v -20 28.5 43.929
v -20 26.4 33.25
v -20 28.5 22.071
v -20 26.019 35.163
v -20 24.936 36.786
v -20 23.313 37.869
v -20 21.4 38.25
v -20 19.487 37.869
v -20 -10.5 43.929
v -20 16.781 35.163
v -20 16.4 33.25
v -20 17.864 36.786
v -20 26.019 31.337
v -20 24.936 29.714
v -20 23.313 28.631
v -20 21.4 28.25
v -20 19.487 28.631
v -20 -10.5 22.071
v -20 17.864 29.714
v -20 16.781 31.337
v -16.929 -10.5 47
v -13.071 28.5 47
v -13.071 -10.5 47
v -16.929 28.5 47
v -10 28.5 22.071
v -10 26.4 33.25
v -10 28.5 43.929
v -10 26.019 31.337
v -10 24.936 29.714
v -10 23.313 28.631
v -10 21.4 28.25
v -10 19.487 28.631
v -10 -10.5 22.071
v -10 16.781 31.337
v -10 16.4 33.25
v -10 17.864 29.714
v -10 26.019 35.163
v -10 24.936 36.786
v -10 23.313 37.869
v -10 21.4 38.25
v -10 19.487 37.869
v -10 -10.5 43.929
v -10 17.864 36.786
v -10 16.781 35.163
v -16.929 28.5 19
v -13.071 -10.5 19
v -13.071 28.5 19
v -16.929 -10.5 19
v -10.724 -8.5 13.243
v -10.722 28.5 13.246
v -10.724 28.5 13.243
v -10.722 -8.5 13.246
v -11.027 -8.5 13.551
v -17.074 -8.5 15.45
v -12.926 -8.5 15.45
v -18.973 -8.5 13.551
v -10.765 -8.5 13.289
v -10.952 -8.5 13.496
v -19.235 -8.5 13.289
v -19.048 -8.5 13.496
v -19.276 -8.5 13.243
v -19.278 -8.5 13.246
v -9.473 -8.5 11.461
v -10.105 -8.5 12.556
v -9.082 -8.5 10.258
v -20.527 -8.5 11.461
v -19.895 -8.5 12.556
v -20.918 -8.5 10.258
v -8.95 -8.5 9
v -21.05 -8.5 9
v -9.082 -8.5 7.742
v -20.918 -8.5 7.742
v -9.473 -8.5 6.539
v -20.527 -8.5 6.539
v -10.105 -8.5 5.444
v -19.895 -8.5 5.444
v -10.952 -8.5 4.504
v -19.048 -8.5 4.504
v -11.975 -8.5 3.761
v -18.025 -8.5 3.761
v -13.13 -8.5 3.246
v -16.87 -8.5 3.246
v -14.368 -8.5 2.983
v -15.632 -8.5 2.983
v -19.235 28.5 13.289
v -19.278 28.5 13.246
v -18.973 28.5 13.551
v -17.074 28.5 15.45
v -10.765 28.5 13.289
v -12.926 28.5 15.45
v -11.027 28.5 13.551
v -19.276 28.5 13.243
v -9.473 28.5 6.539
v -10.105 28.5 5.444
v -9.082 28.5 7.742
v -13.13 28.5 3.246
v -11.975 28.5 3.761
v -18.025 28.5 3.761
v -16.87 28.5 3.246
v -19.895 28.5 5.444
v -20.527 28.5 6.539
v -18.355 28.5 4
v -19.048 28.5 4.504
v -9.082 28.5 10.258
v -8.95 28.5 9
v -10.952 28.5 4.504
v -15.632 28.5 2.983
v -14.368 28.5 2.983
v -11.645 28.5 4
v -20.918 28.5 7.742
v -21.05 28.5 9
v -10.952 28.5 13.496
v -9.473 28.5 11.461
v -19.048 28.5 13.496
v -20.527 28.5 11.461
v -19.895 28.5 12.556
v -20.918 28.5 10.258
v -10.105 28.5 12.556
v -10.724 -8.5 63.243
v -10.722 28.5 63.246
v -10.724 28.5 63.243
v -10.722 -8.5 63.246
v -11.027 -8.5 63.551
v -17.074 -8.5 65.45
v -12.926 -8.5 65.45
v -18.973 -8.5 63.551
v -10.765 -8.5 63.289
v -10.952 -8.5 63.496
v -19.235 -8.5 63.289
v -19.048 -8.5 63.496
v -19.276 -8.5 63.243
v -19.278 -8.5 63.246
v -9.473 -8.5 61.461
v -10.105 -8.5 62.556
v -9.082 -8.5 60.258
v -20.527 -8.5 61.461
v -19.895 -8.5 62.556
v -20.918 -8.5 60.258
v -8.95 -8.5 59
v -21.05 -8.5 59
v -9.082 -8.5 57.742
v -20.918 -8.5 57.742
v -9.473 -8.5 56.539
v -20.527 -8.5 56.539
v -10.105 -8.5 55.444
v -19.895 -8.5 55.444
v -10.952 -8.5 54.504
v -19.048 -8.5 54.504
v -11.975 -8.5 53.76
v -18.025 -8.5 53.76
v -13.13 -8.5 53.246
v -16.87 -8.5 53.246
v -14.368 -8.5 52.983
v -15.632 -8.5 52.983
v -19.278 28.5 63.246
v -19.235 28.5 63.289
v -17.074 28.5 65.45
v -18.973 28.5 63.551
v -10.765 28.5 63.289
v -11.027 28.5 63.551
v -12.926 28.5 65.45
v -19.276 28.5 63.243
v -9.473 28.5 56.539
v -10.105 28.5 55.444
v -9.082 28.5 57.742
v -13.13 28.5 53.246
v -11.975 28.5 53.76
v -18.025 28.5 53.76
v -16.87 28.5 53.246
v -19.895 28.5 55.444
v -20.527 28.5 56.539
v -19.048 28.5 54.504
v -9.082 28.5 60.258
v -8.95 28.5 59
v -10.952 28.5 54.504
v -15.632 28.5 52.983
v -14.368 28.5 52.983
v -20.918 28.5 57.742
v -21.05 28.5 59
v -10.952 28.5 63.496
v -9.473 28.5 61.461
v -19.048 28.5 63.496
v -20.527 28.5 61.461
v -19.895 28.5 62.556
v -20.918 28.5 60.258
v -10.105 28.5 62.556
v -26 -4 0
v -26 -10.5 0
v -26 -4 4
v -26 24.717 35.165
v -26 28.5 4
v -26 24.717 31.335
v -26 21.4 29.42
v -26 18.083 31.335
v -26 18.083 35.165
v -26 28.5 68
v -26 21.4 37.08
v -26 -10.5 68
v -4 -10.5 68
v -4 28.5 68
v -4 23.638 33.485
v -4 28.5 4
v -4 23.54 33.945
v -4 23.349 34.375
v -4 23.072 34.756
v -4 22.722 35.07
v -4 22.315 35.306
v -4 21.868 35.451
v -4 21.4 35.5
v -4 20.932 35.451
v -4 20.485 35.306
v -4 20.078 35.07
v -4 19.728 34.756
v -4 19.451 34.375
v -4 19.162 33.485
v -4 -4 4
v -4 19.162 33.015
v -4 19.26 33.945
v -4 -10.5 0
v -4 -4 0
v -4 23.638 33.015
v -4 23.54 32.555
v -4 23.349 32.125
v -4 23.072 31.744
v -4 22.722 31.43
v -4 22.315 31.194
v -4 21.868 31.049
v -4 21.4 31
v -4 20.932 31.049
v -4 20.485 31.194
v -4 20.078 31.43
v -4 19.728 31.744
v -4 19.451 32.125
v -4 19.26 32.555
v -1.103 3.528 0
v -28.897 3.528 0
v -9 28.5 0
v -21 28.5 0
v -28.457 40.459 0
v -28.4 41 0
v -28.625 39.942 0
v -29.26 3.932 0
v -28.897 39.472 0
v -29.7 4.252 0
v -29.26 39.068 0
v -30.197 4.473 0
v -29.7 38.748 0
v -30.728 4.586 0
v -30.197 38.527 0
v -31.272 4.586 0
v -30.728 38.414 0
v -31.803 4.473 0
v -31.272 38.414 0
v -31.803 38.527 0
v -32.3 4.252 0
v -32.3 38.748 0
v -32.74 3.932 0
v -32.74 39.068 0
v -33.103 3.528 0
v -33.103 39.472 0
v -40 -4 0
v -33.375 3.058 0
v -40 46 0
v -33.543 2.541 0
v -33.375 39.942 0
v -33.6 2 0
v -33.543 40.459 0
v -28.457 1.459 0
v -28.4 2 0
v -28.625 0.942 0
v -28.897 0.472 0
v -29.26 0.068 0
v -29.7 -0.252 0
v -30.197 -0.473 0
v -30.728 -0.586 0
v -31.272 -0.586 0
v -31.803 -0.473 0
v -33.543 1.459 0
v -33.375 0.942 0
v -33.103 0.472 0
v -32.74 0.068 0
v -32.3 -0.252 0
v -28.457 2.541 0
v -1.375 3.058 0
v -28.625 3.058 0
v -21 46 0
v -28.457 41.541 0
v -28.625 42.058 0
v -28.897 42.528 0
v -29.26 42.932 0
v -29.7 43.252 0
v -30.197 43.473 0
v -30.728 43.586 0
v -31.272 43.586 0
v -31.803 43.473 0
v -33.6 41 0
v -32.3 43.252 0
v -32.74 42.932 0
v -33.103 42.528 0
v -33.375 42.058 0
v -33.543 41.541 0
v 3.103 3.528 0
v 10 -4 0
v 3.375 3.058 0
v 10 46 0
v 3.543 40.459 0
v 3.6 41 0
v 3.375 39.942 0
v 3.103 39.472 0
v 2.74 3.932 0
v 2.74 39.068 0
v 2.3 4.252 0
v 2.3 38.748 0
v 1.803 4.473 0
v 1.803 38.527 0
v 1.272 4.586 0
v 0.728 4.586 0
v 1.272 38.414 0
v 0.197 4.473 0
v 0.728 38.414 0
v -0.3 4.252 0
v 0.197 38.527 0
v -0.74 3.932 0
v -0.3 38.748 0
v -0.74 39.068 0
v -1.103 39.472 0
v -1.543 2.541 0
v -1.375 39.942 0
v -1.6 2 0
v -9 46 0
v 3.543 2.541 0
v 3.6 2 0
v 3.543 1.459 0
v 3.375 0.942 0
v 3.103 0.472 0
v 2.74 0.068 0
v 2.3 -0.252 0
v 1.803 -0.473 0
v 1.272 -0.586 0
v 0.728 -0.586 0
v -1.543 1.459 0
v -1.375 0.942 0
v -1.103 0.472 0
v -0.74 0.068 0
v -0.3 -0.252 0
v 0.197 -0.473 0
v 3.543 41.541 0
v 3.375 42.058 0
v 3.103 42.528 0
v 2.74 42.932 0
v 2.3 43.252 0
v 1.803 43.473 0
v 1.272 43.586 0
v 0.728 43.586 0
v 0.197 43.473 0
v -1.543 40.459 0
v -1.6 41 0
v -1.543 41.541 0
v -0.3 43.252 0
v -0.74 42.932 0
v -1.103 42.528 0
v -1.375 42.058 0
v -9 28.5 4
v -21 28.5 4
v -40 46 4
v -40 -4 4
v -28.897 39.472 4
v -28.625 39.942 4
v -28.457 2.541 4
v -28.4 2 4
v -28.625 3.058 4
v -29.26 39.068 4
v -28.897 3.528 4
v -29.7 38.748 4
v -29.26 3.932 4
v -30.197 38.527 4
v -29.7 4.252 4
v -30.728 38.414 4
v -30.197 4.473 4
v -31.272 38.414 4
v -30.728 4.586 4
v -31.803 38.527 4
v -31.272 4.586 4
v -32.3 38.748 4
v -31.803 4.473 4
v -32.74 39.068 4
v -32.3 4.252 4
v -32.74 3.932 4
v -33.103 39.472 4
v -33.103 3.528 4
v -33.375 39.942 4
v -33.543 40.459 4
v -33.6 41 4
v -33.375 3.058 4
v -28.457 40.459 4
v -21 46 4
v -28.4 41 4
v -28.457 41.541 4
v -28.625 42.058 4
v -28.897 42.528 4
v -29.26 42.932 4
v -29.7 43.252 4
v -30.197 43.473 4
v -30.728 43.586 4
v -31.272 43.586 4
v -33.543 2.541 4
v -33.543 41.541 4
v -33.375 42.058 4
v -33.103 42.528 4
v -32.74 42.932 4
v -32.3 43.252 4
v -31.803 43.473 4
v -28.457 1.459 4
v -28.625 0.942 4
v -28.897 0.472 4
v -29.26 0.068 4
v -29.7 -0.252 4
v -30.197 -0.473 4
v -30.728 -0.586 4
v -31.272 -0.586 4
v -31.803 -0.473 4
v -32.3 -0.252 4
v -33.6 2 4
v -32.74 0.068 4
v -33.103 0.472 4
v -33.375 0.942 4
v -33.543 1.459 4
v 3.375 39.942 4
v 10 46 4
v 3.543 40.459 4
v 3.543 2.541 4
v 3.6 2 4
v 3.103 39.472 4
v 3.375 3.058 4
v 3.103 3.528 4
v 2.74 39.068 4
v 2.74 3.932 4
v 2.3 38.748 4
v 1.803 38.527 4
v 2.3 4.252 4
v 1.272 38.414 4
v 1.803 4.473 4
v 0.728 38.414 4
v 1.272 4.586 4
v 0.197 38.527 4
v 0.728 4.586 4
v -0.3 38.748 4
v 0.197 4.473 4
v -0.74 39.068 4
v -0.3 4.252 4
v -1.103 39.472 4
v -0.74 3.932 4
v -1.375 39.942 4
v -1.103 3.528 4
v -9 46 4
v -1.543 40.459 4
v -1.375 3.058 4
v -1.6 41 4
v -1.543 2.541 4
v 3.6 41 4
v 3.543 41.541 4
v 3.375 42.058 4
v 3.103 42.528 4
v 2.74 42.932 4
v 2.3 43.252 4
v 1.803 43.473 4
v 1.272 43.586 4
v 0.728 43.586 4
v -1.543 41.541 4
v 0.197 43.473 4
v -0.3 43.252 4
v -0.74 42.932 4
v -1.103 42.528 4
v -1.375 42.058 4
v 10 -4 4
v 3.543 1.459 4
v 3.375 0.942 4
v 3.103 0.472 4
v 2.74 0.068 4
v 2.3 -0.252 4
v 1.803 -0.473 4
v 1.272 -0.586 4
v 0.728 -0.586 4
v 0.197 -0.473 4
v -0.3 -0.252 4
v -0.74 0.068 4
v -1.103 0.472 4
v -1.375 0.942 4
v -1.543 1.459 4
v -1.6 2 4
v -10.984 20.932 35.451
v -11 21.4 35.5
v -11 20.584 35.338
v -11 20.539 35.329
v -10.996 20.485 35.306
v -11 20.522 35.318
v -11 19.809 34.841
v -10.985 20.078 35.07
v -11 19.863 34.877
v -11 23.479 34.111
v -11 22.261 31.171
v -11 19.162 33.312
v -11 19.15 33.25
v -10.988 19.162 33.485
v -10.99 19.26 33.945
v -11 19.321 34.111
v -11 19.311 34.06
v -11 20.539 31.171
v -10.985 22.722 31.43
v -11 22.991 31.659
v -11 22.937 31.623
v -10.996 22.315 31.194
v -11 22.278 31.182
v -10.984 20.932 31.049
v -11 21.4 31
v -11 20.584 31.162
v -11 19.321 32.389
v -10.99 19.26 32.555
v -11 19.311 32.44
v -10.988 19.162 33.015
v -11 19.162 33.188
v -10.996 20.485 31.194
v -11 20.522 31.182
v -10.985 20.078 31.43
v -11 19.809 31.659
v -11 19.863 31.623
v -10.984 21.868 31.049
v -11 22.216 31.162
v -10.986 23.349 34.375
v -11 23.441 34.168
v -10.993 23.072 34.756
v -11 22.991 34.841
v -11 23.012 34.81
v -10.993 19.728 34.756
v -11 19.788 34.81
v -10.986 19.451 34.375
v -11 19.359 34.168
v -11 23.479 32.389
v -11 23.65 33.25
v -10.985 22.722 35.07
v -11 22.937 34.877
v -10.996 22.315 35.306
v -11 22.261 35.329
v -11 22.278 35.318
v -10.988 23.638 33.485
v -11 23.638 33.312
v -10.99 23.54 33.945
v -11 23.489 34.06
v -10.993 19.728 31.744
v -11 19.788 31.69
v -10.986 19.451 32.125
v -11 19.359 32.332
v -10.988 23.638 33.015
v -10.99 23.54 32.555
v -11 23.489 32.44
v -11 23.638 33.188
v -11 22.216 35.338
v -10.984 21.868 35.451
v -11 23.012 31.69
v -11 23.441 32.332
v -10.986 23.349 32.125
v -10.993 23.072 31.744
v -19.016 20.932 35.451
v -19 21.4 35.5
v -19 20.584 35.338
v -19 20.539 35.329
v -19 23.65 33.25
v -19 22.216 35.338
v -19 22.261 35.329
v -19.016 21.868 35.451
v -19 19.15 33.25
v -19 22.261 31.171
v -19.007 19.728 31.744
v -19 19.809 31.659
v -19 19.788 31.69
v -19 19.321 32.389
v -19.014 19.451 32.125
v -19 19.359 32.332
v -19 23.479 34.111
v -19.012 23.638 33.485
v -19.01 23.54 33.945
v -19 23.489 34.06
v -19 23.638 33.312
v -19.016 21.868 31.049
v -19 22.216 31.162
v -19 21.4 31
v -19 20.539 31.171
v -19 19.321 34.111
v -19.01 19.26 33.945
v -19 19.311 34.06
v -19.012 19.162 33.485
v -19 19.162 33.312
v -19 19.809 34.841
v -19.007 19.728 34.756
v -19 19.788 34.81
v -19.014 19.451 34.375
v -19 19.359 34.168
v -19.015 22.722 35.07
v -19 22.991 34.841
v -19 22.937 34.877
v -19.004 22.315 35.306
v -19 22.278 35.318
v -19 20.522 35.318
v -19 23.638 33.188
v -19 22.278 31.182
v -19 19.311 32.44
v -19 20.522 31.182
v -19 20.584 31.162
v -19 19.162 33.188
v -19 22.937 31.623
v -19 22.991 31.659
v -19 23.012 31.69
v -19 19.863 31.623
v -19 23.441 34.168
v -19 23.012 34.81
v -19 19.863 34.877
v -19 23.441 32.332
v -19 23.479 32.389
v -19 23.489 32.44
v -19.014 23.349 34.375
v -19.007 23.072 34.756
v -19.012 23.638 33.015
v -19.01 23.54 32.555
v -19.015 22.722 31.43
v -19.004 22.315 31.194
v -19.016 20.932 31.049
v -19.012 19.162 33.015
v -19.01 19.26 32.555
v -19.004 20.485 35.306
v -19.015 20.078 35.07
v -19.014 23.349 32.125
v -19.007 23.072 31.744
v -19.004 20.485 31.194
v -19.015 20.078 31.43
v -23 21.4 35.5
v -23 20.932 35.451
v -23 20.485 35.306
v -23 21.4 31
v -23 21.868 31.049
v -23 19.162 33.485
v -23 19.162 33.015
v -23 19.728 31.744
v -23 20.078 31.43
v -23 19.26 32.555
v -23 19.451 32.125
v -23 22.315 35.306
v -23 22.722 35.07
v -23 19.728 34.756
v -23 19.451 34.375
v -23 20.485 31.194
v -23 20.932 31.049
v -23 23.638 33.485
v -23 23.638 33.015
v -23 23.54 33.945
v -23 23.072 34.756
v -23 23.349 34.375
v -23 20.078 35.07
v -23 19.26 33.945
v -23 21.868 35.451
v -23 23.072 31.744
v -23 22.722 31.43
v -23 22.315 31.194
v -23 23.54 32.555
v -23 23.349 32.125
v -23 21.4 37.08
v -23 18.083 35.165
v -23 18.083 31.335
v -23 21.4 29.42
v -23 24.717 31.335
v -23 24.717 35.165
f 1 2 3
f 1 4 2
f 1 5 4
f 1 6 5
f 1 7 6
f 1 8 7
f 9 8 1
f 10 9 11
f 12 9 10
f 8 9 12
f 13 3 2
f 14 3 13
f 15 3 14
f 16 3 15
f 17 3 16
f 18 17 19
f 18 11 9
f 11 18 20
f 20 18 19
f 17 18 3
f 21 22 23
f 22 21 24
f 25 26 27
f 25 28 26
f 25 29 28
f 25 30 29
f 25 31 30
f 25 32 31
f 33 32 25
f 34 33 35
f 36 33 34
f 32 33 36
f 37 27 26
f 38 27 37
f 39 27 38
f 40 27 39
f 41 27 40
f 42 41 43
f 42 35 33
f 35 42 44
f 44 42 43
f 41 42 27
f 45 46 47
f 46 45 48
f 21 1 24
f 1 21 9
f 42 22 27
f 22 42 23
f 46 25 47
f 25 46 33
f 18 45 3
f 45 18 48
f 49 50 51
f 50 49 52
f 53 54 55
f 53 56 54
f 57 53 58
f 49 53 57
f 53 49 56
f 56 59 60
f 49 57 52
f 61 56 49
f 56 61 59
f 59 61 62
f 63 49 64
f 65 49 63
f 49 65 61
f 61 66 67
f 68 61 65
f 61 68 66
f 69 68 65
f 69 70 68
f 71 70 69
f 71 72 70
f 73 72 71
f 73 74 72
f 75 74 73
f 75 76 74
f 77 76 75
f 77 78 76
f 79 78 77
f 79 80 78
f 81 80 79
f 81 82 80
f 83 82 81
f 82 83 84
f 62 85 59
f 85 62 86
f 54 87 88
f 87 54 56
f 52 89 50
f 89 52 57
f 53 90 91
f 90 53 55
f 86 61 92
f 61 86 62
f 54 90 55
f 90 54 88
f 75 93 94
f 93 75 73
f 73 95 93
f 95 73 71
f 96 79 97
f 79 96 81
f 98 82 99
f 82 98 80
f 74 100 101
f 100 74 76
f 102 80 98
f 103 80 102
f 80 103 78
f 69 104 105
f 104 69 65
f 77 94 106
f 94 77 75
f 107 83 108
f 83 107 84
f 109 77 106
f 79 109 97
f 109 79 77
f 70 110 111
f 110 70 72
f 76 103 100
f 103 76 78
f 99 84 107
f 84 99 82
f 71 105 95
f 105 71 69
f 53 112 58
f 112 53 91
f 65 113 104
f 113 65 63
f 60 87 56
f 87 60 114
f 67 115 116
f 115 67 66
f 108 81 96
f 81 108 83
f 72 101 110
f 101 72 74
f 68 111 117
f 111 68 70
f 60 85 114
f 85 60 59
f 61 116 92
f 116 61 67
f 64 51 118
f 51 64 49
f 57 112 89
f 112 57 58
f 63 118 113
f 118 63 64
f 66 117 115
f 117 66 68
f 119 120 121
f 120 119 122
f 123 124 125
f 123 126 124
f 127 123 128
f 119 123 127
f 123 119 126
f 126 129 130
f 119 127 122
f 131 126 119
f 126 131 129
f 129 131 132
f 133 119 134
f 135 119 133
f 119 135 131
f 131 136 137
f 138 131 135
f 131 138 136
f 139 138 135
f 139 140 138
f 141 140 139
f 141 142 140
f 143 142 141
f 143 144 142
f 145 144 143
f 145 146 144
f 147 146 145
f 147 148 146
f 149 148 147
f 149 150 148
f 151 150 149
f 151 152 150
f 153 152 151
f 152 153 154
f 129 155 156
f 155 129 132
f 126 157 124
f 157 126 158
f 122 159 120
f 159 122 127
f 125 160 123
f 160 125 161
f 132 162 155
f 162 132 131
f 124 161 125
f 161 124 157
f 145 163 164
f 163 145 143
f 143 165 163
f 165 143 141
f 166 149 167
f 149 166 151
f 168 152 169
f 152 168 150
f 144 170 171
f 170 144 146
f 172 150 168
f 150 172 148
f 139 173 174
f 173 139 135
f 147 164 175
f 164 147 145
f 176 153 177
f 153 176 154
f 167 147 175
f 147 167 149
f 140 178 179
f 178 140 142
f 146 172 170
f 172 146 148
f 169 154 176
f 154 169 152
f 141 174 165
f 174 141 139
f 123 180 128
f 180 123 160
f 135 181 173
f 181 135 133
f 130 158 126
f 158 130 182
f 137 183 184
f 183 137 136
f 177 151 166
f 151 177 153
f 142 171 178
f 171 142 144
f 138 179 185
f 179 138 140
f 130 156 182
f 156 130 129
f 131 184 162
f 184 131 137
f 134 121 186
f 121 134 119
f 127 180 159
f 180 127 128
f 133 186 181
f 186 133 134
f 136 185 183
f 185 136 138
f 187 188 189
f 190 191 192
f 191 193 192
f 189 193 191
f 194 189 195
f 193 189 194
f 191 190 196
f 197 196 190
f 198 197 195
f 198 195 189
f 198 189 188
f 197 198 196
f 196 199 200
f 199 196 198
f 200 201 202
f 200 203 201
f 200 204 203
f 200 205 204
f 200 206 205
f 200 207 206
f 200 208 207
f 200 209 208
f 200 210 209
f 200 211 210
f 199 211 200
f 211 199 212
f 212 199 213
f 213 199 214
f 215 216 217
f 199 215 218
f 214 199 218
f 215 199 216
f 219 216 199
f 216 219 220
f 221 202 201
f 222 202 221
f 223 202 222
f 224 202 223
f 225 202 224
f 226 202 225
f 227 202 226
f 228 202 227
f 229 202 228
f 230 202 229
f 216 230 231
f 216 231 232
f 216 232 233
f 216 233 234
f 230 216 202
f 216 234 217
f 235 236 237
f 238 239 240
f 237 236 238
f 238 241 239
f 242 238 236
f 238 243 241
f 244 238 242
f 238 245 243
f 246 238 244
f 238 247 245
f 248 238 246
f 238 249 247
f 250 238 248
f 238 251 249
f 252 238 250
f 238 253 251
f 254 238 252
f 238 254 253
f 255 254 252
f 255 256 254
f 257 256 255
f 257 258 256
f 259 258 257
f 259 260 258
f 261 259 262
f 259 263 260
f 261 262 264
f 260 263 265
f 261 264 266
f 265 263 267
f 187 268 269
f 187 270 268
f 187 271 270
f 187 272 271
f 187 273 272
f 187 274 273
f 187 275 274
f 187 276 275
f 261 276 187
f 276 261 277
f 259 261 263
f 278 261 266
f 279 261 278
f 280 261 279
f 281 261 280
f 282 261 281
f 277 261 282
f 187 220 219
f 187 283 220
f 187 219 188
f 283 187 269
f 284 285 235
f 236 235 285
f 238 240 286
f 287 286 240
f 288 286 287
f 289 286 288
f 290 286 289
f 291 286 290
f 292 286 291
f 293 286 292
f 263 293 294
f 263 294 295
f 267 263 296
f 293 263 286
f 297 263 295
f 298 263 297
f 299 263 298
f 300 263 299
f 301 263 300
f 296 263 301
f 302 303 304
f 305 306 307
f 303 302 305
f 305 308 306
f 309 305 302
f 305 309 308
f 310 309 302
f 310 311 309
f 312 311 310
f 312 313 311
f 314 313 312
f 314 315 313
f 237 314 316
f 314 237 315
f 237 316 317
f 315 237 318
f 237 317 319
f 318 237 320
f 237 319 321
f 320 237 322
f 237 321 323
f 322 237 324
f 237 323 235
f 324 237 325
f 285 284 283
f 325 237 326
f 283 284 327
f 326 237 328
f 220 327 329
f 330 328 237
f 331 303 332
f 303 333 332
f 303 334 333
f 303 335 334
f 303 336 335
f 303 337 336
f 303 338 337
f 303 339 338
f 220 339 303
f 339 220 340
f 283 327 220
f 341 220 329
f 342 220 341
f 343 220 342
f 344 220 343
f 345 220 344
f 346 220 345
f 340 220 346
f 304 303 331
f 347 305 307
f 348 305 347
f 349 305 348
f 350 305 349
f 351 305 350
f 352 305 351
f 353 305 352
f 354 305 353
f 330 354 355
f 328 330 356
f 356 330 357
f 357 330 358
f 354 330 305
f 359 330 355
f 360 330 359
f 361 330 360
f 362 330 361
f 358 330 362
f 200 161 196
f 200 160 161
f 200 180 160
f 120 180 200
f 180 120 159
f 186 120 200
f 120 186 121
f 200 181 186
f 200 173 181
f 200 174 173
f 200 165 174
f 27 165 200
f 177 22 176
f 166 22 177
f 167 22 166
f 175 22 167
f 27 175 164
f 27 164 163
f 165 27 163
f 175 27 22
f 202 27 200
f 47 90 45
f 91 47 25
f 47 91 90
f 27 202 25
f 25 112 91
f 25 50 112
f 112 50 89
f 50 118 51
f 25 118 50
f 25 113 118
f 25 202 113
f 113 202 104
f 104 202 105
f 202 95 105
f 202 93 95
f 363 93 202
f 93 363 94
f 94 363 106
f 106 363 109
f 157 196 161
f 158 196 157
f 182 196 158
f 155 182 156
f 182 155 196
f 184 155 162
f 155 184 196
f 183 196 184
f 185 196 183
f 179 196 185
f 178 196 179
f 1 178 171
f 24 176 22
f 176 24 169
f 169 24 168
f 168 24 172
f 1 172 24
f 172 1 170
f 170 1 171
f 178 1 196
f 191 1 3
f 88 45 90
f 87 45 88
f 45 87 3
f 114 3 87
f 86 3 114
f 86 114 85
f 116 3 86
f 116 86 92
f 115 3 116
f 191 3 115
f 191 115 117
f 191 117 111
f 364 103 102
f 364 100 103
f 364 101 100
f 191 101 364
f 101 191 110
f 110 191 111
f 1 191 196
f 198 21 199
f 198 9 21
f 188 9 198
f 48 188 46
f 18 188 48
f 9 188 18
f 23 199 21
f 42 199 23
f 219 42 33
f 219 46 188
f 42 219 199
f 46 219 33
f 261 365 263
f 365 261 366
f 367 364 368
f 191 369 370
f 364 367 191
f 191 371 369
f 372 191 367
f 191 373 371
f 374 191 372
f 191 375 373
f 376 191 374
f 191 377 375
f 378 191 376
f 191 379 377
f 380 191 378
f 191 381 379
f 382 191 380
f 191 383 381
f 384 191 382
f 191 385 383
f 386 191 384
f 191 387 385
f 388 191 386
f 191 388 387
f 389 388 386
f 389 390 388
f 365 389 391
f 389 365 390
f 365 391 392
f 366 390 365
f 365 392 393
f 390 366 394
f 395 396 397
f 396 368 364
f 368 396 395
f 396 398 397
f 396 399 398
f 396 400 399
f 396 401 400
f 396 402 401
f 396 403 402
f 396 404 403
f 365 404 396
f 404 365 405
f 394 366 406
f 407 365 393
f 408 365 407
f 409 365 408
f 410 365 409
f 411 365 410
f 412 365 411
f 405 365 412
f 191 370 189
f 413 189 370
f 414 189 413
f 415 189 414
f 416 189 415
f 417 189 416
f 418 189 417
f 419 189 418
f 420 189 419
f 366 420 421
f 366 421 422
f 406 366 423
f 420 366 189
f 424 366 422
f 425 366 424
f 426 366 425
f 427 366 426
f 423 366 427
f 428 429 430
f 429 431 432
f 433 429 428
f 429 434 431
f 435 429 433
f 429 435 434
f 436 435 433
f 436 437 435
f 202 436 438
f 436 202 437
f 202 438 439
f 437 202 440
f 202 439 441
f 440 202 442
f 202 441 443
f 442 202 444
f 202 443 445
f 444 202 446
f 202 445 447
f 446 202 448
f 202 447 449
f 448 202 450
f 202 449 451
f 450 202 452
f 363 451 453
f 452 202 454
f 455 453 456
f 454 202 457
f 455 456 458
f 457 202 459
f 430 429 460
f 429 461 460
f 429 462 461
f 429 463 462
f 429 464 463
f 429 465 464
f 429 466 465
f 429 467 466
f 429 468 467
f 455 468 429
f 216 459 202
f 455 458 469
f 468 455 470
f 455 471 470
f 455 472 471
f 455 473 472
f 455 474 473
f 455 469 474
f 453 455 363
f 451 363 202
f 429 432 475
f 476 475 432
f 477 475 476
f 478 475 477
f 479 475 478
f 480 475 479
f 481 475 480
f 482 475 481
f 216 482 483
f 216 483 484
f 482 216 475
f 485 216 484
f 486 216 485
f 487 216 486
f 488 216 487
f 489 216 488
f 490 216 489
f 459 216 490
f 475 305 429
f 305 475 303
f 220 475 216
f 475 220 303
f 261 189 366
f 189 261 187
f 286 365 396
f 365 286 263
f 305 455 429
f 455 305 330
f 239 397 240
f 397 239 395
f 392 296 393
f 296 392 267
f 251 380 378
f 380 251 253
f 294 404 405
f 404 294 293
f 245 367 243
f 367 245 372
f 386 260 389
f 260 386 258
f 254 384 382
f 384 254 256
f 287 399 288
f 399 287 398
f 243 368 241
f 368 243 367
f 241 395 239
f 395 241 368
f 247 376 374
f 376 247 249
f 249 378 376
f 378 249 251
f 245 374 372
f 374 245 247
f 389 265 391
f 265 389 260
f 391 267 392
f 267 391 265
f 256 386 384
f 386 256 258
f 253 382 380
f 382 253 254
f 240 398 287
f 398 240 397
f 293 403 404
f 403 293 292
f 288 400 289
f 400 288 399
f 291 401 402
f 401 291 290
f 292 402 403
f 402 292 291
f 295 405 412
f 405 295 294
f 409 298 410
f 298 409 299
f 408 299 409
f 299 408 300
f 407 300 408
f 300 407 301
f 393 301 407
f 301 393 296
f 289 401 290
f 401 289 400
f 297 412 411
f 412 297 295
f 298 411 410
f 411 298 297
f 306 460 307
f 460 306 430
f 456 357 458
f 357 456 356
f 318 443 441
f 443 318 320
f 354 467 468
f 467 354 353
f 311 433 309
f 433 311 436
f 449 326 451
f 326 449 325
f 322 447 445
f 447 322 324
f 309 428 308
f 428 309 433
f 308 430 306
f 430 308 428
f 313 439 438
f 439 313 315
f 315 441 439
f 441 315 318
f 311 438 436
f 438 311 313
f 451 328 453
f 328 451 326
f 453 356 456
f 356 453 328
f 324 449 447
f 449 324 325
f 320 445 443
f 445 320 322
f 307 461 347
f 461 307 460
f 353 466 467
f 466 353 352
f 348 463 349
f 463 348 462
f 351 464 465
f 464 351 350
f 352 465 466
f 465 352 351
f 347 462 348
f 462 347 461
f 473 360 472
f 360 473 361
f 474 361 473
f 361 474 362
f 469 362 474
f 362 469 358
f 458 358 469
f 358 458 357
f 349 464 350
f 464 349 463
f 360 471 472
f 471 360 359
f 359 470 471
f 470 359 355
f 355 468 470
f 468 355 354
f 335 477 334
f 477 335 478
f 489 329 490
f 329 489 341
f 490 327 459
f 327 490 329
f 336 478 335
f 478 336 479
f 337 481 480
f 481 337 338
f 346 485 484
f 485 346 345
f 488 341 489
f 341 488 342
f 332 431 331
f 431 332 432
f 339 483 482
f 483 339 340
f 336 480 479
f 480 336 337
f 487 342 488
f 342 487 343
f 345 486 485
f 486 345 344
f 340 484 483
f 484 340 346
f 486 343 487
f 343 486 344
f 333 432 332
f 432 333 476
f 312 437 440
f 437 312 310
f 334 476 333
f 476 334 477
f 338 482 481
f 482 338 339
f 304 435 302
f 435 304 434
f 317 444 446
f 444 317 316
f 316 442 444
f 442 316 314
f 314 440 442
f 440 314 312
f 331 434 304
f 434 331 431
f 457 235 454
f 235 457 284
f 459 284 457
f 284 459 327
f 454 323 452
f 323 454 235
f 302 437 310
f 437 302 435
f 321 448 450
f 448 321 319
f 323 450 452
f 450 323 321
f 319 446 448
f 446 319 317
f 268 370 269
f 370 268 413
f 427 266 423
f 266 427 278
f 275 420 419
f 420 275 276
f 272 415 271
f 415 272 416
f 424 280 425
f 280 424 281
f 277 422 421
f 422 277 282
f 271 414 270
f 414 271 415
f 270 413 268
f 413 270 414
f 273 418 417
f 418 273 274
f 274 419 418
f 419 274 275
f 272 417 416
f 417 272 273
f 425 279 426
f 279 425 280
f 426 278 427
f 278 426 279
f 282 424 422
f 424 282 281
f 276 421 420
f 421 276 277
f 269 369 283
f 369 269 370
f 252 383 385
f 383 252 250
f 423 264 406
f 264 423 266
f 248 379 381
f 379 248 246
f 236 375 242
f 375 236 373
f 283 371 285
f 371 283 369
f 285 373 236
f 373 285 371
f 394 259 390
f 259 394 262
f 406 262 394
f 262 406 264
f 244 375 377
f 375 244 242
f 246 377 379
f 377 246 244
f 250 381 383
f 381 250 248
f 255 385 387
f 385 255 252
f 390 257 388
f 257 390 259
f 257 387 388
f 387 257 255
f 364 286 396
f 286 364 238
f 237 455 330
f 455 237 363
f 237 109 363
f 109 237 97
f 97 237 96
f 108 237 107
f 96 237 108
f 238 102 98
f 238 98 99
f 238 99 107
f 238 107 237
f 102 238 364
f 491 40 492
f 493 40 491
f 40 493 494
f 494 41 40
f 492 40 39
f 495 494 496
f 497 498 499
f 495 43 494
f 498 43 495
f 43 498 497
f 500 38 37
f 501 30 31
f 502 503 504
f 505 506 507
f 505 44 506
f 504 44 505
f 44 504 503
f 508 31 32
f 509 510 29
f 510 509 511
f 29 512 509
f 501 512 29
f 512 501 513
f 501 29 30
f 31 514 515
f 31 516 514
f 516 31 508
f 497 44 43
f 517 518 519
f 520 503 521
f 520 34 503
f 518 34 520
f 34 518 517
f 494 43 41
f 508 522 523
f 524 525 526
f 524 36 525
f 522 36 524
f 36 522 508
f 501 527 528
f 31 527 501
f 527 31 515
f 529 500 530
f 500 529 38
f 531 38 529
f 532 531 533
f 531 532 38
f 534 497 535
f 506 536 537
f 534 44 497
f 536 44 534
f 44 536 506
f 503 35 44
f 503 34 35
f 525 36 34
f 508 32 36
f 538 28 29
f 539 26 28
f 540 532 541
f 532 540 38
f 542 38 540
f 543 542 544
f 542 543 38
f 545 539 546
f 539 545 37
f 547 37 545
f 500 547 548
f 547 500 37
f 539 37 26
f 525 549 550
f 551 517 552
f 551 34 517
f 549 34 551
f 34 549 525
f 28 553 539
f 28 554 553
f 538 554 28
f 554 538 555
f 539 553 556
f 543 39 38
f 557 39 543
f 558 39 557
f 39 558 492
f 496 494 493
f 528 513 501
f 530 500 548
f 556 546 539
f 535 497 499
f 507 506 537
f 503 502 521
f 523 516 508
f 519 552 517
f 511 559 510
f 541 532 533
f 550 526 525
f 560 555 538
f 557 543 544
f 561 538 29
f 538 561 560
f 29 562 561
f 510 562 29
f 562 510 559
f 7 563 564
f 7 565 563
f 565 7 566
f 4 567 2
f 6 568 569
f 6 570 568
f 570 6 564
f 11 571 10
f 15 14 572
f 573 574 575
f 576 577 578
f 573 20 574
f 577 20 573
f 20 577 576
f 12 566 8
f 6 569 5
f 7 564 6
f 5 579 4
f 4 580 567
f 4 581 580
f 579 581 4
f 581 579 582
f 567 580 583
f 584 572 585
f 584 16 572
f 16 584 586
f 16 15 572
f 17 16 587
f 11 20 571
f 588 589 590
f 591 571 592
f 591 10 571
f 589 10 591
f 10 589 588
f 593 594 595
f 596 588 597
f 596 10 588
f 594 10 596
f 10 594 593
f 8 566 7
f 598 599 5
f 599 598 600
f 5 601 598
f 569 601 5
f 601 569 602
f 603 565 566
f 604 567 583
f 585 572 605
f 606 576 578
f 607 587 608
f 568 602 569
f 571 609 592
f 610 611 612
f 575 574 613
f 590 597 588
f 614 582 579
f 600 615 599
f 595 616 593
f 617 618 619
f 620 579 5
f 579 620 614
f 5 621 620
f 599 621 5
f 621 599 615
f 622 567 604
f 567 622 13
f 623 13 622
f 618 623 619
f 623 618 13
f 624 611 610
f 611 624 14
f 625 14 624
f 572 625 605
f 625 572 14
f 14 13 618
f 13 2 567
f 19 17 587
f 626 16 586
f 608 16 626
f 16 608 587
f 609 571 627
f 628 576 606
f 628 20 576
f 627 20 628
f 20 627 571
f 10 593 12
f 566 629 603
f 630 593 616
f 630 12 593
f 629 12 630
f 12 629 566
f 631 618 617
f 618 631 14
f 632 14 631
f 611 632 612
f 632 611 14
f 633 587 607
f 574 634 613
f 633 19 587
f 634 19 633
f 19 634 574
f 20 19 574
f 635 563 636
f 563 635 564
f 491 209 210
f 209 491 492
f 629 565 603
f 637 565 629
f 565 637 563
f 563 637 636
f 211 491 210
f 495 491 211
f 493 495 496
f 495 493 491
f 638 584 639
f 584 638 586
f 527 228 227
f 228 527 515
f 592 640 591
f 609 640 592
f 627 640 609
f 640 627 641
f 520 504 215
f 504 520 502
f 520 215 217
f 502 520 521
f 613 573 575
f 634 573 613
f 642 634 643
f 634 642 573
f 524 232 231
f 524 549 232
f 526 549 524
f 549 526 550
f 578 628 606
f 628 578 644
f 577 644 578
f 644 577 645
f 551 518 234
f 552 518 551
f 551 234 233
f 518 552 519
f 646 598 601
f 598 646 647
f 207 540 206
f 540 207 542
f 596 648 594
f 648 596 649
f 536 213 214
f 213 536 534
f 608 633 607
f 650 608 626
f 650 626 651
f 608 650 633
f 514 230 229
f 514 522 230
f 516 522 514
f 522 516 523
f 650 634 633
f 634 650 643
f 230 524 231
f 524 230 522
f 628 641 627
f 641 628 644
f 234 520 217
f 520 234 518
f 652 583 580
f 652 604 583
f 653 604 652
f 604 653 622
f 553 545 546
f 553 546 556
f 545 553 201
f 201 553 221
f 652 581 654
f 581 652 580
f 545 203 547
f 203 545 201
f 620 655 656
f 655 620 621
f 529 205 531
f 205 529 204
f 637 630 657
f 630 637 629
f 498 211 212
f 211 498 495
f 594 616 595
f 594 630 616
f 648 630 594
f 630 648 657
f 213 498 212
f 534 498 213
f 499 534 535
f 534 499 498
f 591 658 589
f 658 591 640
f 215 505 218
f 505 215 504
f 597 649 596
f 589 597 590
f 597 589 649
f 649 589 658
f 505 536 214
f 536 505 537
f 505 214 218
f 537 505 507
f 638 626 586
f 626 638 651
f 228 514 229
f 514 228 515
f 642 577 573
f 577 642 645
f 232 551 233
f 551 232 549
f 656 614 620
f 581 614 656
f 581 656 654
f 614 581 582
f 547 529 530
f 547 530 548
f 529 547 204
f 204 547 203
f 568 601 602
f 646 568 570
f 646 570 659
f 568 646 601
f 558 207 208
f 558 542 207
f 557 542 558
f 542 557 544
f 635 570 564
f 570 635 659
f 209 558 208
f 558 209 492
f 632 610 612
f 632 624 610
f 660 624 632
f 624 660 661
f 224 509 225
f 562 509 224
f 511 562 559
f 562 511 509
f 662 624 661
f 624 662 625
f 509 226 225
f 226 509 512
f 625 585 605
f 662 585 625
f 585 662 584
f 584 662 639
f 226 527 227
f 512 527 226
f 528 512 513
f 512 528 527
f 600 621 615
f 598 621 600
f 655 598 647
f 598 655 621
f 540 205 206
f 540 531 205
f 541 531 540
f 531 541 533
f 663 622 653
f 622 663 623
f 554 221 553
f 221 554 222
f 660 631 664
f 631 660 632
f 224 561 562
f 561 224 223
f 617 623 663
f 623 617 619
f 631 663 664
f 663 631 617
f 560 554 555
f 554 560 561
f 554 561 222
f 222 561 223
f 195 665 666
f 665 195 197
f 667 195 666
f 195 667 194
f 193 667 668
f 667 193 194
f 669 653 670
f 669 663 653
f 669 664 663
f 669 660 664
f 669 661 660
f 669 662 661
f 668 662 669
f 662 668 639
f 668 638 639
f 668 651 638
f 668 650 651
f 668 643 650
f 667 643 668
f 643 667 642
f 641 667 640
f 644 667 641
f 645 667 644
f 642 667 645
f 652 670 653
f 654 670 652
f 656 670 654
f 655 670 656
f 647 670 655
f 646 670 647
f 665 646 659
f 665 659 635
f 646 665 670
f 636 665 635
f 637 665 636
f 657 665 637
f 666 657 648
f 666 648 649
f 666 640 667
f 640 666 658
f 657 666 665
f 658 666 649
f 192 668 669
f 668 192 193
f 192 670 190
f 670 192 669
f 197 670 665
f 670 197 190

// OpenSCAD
// file: inc/bearing.scad
// PRUSA iteration3
// Bearing holders
// GNU GPL v3
// Josef Průša <iam@josefprusa.cz> and contributors
// http://www.reprap.org/wiki/Prusa_Mendel
// http://prusamendel.org

bearing_diameter = 15;

module horizontal_bearing_base(bearings=1){
 translate(v=[0,0,6]) cube(size = [24,8+bearings*25,12], center = true);	
}
module horizontal_bearing_holes(bearings=1){
 cutter_lenght = 10+bearings*25;
 one_holder_lenght = 8+25;
 holder_lenght = 8+bearings*25;
 
 // Main bearing cut
 difference(){
  translate(v=[0,0,12+1.5]) rotate(a=[90,0,0]) translate(v=[0,0,-cutter_lenght/2]) cylinder(h = cutter_lenght, r=bearing_diameter/2, $fn=50);
  // Bearing retainers
  translate(v=[0,1-holder_lenght/2,3+1.5]) cube(size = [24,6,8], center = true);
  translate(v=[0,-1+holder_lenght/2,3+1.5]) cube(size = [24,6,8], center = true);
 }
 
 // Ziptie cutouts
 ziptie_cut_ofset = 0;
 for ( i = [0 : bearings-1] ){
  // For easier positioning I move them by half of one 
  // bearing holder then add each bearign lenght and then center again
  translate(v=[0,-holder_lenght/2,0]) translate(v=[0,one_holder_lenght/2+i*25,0]) difference(){
   union(){
    translate(v=[0,2-6,12]) rotate(a=[90,0,0]) translate(v=[0,0,0]) cylinder(h = 4, r=12.5, $fn=50);
    translate(v=[0,2+6,12]) rotate(a=[90,0,0]) translate(v=[0,0,0]) cylinder(h = 4, r=12.5, $fn=50);
   }
   translate(v=[0,10,12]) rotate(a=[90,0,0]) translate(v=[0,0,0]) cylinder(h = 24, r=10, $fn=50);
  }
 }
 
}

module horizontal_bearing_test(){
 difference(){
  horizontal_bearing_base(1);
  horizontal_bearing_holes(1);
 }
 translate(v=[30,0,0]) difference(){
  horizontal_bearing_base(2);
  horizontal_bearing_holes(2);
 }
 translate(v=[60,0,0]) difference(){
  horizontal_bearing_base(3);
  horizontal_bearing_holes(3);
 }
}



thinwall = 3;
bearing_size = bearing_diameter + 2 * thinwall;

module vertical_bearing_base(){
 translate(v=[-bearing_size/2,0,30]) cube(size = [bearing_size,bearing_size,60], center = true);
 cylinder(h = 60, r=bearing_size/2, $fn = 60);
}

module vertical_bearing_holes(){
  translate(v=[0,0,-1]) cylinder(h = 62, r=bearing_diameter/2, $fn = 60);
  rotate(a=[0,0,-60]) translate(v=[10,0,31.5]) cube(size = [10,1,62], center = true);
}

difference(){
vertical_bearing_base();
vertical_bearing_holes();
}
// file: inc/x-end.scad
// PRUSA iteration3
// X end prototype
// GNU GPL v3
// Josef Průša <iam@josefprusa.cz> and contributors
// http://www.reprap.org/wiki/Prusa_Mendel
// http://prusamendel.org

use <bearing.scad>
rod_distance = 50;
zoffset=3;
module x_end_base(){
// Main block
height = 68;
translate(v=[-15,-9,height/2]) cube(size = [22,39,height], center = true);
translate([-11-4,-41+25-5,2]) cube([50,50,4], center = true);
}

module x_end_holes(){
// vertical_bearing_holes();
//mount holes
translate([-(11+4+32/2),-41])cylinder(r=5.2/2,h=20,$fn=30);   
translate([-(11+4)+32/2,-41])cylinder(r=5.2/2,h=20,$fn=30);    
translate([-(11+4)+32/2,-41+39])cylinder(r=5.2/2,h=20,$fn=30);
translate([-(11+4+32/2),-41+39])cylinder(r=5.2/2,h=20,$fn=30);
translate([-4-11-12/2,-41-5])cube([12,17.5,4]);   
 
// Belt hole
 
translate(v=[-1,0,zoffset]){
difference(){
	translate(v=[-5.5-10+1.5,-10,30]) cube(size = [10,46,28], center = true);
	// Nice edges
	translate(v=[-5.5-10+1.5,-10,30+23]) rotate([0,45,0]) cube(size = [10,46,28], center = true);
	translate(v=[-5.5-10+1.5,-10,30+23]) rotate([0,-45,0]) cube(size = [10,46,28], center = true);
	translate(v=[-5.5-10+1.5,-10,30-23]) rotate([0,45,0]) cube(size = [10,46,28], center = true);
	translate(v=[-5.5-10+1.5,-10,30-23]) rotate([0,-45,0]) cube(size = [10,46,28], center = true);

}
}

// Bottom pushfit rod
translate(v=[-15,-41.5,6+zoffset]) rotate(a=[-90,0,0]) pushfit_rod(12.1,50);
// Top pushfit rod
translate(v=[-15,-41.5,rod_distance+6+ zoffset]) rotate(a=[-90,0,0]) pushfit_rod(12.1,50);

}


// Final prototype
module x_end_plain(){
 difference(){
  x_end_base();
  x_end_holes();
 }
}

x_end_plain();


module pushfit_rod(diameter,length){
 cylinder(h = length, r=diameter/2, $fn=30);
 difference(){
 	translate(v=[0,-diameter/2.85,length/2]) rotate([0,0,45]) cube(size = [diameter/2,diameter/2,length], center = true);
 	translate(v=[0,-diameter/4-diameter/2-0.4,length/2]) rotate([0,0,0]) cube(size = [diameter,diameter/2,length], center = true);
 }

}
// main file
// PRUSA iteration3
// x end idler
// GNU GPL v3
// Josef Průša <iam@josefprusa.cz> and contributors
// http://www.reprap.org/wiki/Prusa_Mendel
// http://prusamendel.org

use <inc/x-end.scad>

module x_end_idler_base(){
 difference(){
 x_end_base();
     x_end_holes();
 }
 translate(v=[-10,-21.4,33.25])rotate(a=[0,-90,0])cylinder(h=1,r2=2.25,r1=5);
 translate(v=[-19,-21.4,33.25])rotate(a=[0,-90,0])cylinder(h=1,r1=2.25,r2=5);
}

module x_end_idler_holes(){

 
    translate([0,2,3]){
 translate(v=[0,-23.4,30.25]) rotate(a=[0,-90,0]) cylinder(h = 40, r=2.25, $fn=30);
 translate(v=[-23,-23.4,30.25])rotate(a=[0,-90,0])cylinder(h =3, r=7.66/2, $fn=6);	
}
}
 
// Final part
module x_end_idler(){
 mirror([0,1,0]) difference(){
  x_end_idler_base();
  x_end_idler_holes();
 }
}

x_end_idler();
